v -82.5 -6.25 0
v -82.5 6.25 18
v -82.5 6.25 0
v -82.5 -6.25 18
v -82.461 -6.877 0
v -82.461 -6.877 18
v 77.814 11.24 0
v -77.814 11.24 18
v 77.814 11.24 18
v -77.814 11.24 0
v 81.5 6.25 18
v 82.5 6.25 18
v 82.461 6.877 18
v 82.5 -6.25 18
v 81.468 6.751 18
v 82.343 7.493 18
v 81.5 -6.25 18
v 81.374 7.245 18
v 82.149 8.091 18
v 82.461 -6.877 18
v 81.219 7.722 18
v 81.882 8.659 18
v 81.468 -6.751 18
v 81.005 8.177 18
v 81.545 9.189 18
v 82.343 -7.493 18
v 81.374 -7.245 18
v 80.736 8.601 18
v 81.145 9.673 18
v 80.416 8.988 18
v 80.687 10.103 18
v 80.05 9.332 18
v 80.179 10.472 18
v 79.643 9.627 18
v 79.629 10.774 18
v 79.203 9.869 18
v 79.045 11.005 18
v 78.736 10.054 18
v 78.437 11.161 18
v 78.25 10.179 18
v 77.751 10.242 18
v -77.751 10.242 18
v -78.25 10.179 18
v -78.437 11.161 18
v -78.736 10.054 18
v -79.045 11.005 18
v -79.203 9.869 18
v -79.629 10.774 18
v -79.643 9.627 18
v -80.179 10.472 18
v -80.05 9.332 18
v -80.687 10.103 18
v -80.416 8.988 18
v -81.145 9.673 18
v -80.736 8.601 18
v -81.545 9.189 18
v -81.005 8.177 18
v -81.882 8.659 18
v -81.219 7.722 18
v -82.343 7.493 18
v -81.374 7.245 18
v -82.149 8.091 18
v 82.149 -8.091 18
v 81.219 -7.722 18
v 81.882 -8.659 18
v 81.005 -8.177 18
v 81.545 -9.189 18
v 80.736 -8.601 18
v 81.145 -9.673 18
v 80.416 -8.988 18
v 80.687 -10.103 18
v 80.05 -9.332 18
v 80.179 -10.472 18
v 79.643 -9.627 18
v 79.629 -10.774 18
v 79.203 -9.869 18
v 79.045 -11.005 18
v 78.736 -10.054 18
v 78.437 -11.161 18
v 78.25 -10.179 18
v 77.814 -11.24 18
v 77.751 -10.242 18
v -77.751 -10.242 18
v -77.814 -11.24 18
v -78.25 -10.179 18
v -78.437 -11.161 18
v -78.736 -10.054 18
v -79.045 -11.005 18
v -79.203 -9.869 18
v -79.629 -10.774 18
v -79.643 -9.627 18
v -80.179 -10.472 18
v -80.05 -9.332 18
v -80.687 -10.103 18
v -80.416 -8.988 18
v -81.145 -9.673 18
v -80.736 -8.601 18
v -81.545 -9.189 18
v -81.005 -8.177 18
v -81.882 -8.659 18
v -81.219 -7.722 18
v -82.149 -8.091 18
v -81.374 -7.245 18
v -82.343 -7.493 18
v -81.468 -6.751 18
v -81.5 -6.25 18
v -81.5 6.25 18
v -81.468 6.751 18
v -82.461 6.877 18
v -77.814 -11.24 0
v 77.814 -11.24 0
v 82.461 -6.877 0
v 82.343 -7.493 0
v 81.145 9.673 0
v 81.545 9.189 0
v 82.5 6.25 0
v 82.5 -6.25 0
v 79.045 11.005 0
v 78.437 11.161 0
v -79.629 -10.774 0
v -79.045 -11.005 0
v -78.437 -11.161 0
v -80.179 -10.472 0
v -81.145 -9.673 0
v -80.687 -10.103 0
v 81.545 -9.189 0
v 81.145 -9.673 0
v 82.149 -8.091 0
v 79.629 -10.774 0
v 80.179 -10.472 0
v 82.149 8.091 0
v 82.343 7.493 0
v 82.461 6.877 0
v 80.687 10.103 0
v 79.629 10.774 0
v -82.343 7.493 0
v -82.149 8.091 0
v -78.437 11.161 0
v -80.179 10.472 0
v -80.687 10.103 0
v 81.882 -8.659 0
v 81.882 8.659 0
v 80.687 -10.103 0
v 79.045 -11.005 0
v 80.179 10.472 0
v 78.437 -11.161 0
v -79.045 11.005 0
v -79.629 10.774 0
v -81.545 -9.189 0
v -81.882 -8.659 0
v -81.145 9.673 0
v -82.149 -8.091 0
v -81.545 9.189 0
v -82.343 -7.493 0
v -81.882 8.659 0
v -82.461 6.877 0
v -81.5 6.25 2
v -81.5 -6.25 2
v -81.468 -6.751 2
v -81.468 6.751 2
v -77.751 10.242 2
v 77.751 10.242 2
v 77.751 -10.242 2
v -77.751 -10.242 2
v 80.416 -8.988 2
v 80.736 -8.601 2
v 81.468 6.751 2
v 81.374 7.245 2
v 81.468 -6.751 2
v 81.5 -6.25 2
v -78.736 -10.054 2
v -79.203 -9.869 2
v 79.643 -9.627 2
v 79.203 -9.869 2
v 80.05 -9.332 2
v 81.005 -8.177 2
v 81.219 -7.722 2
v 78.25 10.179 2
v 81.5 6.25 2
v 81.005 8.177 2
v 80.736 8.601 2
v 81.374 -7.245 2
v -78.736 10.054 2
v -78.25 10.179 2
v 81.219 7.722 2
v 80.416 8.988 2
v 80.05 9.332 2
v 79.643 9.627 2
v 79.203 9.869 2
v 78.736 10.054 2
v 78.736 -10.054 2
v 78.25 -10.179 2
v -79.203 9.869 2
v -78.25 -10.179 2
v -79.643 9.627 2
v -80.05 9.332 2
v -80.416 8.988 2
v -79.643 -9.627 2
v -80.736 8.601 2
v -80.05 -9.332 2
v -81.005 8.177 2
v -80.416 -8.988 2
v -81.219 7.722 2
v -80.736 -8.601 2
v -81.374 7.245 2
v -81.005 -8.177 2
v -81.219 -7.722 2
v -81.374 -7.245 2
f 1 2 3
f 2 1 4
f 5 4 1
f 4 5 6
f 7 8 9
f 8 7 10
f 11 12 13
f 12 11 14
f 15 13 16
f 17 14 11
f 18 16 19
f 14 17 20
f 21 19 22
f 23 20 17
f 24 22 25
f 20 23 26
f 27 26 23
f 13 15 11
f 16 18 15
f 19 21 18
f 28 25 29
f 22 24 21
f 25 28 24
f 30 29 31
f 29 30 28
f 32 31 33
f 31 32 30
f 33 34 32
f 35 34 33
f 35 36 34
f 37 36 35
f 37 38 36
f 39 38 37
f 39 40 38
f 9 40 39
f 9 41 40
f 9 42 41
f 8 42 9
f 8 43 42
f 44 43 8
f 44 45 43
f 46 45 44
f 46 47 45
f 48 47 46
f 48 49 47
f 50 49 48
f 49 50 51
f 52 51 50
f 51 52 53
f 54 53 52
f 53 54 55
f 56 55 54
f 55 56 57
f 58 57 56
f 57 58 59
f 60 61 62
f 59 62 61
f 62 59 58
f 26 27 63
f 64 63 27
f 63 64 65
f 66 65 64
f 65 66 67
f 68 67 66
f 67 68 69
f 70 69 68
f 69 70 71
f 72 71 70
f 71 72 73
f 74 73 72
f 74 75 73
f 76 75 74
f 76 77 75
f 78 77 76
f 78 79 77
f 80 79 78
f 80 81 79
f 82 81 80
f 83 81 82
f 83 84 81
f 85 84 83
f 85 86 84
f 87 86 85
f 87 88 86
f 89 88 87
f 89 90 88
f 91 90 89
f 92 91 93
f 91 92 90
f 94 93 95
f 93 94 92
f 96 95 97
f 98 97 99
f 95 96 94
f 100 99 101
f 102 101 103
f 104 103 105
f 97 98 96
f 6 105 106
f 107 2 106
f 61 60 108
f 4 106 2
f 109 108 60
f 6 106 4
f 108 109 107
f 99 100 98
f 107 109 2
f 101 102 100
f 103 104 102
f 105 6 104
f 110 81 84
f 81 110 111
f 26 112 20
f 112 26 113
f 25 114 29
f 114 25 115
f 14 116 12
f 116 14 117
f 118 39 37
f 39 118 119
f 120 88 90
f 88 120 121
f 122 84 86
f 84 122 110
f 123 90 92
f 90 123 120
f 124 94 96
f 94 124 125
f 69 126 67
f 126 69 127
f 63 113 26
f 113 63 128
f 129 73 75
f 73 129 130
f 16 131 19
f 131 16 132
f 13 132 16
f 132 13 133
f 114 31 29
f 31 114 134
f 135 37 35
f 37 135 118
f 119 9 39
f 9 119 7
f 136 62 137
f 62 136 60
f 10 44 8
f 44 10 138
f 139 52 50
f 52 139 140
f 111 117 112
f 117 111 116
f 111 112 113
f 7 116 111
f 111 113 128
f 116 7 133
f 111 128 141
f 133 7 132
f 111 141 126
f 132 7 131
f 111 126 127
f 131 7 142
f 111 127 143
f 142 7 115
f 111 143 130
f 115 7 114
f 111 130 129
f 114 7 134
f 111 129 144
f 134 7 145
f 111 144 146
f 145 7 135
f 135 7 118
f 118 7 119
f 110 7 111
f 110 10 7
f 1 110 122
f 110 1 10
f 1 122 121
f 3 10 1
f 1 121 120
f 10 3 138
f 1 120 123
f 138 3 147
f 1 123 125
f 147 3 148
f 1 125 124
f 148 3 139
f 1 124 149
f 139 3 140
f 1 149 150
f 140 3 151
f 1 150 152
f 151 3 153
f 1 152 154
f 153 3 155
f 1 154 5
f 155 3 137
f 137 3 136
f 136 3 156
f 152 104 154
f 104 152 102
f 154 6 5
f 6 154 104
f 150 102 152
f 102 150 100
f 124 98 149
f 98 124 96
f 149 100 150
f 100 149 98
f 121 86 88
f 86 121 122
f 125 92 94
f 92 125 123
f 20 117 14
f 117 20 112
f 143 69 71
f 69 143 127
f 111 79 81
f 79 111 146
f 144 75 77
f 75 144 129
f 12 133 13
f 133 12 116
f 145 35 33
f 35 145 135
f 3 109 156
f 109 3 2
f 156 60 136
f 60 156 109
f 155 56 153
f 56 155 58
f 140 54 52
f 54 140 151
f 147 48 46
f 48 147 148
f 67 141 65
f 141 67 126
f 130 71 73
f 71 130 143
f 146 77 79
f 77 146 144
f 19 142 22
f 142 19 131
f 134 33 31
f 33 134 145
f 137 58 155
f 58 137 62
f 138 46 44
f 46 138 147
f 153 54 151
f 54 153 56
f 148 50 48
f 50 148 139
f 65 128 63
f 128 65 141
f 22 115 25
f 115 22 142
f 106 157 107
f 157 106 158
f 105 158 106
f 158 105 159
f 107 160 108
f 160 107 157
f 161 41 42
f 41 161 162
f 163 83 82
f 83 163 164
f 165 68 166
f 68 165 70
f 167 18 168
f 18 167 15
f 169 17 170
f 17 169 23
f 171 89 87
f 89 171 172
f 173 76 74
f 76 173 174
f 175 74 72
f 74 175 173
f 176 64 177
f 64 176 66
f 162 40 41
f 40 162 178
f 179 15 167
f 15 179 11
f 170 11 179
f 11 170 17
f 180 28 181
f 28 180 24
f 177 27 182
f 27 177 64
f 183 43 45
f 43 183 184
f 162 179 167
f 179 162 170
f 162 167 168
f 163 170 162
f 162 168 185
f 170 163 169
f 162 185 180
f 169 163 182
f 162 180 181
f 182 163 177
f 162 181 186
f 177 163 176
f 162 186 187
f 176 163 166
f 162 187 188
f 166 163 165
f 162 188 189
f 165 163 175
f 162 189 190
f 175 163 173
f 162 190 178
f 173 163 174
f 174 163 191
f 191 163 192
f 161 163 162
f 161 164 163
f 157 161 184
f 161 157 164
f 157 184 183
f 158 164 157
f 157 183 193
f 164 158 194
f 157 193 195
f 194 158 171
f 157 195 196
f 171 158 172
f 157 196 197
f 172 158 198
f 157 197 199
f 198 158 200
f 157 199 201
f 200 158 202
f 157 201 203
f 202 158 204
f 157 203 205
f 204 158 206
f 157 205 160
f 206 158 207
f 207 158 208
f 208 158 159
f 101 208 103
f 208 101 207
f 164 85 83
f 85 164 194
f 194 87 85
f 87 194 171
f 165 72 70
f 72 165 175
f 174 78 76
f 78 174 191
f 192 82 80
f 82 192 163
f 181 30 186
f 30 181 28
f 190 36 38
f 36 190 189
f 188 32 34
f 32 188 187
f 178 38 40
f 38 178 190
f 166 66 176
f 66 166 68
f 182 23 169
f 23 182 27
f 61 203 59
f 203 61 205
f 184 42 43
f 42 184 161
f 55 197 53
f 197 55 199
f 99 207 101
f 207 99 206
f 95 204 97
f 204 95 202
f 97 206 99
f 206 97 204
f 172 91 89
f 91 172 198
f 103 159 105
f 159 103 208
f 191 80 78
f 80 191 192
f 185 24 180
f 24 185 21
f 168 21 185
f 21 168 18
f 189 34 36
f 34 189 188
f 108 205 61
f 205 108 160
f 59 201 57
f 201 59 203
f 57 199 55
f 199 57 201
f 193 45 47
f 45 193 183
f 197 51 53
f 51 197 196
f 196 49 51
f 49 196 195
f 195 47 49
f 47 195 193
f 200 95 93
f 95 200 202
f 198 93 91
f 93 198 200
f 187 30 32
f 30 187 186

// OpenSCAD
$fn = 50;


difference() {
	union() {
		hull() {
			translate(v = [-77.5000000000, 6.2500000000, 0]) {
				cylinder(h = 18, r = 5);
			}
			translate(v = [77.5000000000, 6.2500000000, 0]) {
				cylinder(h = 18, r = 5);
			}
			translate(v = [-77.5000000000, -6.2500000000, 0]) {
				cylinder(h = 18, r = 5);
			}
			translate(v = [77.5000000000, -6.2500000000, 0]) {
				cylinder(h = 18, r = 5);
			}
		}
	}
	union() {
		translate(v = [0, 0, 2]) {
			hull() {
				translate(v = [-77.5000000000, 6.2500000000, 0]) {
					cylinder(h = 16, r = 4);
				}
				translate(v = [77.5000000000, 6.2500000000, 0]) {
					cylinder(h = 16, r = 4);
				}
				translate(v = [-77.5000000000, -6.2500000000, 0]) {
					cylinder(h = 16, r = 4);
				}
				translate(v = [77.5000000000, -6.2500000000, 0]) {
					cylinder(h = 16, r = 4);
				}
			}
		}
	}
}
